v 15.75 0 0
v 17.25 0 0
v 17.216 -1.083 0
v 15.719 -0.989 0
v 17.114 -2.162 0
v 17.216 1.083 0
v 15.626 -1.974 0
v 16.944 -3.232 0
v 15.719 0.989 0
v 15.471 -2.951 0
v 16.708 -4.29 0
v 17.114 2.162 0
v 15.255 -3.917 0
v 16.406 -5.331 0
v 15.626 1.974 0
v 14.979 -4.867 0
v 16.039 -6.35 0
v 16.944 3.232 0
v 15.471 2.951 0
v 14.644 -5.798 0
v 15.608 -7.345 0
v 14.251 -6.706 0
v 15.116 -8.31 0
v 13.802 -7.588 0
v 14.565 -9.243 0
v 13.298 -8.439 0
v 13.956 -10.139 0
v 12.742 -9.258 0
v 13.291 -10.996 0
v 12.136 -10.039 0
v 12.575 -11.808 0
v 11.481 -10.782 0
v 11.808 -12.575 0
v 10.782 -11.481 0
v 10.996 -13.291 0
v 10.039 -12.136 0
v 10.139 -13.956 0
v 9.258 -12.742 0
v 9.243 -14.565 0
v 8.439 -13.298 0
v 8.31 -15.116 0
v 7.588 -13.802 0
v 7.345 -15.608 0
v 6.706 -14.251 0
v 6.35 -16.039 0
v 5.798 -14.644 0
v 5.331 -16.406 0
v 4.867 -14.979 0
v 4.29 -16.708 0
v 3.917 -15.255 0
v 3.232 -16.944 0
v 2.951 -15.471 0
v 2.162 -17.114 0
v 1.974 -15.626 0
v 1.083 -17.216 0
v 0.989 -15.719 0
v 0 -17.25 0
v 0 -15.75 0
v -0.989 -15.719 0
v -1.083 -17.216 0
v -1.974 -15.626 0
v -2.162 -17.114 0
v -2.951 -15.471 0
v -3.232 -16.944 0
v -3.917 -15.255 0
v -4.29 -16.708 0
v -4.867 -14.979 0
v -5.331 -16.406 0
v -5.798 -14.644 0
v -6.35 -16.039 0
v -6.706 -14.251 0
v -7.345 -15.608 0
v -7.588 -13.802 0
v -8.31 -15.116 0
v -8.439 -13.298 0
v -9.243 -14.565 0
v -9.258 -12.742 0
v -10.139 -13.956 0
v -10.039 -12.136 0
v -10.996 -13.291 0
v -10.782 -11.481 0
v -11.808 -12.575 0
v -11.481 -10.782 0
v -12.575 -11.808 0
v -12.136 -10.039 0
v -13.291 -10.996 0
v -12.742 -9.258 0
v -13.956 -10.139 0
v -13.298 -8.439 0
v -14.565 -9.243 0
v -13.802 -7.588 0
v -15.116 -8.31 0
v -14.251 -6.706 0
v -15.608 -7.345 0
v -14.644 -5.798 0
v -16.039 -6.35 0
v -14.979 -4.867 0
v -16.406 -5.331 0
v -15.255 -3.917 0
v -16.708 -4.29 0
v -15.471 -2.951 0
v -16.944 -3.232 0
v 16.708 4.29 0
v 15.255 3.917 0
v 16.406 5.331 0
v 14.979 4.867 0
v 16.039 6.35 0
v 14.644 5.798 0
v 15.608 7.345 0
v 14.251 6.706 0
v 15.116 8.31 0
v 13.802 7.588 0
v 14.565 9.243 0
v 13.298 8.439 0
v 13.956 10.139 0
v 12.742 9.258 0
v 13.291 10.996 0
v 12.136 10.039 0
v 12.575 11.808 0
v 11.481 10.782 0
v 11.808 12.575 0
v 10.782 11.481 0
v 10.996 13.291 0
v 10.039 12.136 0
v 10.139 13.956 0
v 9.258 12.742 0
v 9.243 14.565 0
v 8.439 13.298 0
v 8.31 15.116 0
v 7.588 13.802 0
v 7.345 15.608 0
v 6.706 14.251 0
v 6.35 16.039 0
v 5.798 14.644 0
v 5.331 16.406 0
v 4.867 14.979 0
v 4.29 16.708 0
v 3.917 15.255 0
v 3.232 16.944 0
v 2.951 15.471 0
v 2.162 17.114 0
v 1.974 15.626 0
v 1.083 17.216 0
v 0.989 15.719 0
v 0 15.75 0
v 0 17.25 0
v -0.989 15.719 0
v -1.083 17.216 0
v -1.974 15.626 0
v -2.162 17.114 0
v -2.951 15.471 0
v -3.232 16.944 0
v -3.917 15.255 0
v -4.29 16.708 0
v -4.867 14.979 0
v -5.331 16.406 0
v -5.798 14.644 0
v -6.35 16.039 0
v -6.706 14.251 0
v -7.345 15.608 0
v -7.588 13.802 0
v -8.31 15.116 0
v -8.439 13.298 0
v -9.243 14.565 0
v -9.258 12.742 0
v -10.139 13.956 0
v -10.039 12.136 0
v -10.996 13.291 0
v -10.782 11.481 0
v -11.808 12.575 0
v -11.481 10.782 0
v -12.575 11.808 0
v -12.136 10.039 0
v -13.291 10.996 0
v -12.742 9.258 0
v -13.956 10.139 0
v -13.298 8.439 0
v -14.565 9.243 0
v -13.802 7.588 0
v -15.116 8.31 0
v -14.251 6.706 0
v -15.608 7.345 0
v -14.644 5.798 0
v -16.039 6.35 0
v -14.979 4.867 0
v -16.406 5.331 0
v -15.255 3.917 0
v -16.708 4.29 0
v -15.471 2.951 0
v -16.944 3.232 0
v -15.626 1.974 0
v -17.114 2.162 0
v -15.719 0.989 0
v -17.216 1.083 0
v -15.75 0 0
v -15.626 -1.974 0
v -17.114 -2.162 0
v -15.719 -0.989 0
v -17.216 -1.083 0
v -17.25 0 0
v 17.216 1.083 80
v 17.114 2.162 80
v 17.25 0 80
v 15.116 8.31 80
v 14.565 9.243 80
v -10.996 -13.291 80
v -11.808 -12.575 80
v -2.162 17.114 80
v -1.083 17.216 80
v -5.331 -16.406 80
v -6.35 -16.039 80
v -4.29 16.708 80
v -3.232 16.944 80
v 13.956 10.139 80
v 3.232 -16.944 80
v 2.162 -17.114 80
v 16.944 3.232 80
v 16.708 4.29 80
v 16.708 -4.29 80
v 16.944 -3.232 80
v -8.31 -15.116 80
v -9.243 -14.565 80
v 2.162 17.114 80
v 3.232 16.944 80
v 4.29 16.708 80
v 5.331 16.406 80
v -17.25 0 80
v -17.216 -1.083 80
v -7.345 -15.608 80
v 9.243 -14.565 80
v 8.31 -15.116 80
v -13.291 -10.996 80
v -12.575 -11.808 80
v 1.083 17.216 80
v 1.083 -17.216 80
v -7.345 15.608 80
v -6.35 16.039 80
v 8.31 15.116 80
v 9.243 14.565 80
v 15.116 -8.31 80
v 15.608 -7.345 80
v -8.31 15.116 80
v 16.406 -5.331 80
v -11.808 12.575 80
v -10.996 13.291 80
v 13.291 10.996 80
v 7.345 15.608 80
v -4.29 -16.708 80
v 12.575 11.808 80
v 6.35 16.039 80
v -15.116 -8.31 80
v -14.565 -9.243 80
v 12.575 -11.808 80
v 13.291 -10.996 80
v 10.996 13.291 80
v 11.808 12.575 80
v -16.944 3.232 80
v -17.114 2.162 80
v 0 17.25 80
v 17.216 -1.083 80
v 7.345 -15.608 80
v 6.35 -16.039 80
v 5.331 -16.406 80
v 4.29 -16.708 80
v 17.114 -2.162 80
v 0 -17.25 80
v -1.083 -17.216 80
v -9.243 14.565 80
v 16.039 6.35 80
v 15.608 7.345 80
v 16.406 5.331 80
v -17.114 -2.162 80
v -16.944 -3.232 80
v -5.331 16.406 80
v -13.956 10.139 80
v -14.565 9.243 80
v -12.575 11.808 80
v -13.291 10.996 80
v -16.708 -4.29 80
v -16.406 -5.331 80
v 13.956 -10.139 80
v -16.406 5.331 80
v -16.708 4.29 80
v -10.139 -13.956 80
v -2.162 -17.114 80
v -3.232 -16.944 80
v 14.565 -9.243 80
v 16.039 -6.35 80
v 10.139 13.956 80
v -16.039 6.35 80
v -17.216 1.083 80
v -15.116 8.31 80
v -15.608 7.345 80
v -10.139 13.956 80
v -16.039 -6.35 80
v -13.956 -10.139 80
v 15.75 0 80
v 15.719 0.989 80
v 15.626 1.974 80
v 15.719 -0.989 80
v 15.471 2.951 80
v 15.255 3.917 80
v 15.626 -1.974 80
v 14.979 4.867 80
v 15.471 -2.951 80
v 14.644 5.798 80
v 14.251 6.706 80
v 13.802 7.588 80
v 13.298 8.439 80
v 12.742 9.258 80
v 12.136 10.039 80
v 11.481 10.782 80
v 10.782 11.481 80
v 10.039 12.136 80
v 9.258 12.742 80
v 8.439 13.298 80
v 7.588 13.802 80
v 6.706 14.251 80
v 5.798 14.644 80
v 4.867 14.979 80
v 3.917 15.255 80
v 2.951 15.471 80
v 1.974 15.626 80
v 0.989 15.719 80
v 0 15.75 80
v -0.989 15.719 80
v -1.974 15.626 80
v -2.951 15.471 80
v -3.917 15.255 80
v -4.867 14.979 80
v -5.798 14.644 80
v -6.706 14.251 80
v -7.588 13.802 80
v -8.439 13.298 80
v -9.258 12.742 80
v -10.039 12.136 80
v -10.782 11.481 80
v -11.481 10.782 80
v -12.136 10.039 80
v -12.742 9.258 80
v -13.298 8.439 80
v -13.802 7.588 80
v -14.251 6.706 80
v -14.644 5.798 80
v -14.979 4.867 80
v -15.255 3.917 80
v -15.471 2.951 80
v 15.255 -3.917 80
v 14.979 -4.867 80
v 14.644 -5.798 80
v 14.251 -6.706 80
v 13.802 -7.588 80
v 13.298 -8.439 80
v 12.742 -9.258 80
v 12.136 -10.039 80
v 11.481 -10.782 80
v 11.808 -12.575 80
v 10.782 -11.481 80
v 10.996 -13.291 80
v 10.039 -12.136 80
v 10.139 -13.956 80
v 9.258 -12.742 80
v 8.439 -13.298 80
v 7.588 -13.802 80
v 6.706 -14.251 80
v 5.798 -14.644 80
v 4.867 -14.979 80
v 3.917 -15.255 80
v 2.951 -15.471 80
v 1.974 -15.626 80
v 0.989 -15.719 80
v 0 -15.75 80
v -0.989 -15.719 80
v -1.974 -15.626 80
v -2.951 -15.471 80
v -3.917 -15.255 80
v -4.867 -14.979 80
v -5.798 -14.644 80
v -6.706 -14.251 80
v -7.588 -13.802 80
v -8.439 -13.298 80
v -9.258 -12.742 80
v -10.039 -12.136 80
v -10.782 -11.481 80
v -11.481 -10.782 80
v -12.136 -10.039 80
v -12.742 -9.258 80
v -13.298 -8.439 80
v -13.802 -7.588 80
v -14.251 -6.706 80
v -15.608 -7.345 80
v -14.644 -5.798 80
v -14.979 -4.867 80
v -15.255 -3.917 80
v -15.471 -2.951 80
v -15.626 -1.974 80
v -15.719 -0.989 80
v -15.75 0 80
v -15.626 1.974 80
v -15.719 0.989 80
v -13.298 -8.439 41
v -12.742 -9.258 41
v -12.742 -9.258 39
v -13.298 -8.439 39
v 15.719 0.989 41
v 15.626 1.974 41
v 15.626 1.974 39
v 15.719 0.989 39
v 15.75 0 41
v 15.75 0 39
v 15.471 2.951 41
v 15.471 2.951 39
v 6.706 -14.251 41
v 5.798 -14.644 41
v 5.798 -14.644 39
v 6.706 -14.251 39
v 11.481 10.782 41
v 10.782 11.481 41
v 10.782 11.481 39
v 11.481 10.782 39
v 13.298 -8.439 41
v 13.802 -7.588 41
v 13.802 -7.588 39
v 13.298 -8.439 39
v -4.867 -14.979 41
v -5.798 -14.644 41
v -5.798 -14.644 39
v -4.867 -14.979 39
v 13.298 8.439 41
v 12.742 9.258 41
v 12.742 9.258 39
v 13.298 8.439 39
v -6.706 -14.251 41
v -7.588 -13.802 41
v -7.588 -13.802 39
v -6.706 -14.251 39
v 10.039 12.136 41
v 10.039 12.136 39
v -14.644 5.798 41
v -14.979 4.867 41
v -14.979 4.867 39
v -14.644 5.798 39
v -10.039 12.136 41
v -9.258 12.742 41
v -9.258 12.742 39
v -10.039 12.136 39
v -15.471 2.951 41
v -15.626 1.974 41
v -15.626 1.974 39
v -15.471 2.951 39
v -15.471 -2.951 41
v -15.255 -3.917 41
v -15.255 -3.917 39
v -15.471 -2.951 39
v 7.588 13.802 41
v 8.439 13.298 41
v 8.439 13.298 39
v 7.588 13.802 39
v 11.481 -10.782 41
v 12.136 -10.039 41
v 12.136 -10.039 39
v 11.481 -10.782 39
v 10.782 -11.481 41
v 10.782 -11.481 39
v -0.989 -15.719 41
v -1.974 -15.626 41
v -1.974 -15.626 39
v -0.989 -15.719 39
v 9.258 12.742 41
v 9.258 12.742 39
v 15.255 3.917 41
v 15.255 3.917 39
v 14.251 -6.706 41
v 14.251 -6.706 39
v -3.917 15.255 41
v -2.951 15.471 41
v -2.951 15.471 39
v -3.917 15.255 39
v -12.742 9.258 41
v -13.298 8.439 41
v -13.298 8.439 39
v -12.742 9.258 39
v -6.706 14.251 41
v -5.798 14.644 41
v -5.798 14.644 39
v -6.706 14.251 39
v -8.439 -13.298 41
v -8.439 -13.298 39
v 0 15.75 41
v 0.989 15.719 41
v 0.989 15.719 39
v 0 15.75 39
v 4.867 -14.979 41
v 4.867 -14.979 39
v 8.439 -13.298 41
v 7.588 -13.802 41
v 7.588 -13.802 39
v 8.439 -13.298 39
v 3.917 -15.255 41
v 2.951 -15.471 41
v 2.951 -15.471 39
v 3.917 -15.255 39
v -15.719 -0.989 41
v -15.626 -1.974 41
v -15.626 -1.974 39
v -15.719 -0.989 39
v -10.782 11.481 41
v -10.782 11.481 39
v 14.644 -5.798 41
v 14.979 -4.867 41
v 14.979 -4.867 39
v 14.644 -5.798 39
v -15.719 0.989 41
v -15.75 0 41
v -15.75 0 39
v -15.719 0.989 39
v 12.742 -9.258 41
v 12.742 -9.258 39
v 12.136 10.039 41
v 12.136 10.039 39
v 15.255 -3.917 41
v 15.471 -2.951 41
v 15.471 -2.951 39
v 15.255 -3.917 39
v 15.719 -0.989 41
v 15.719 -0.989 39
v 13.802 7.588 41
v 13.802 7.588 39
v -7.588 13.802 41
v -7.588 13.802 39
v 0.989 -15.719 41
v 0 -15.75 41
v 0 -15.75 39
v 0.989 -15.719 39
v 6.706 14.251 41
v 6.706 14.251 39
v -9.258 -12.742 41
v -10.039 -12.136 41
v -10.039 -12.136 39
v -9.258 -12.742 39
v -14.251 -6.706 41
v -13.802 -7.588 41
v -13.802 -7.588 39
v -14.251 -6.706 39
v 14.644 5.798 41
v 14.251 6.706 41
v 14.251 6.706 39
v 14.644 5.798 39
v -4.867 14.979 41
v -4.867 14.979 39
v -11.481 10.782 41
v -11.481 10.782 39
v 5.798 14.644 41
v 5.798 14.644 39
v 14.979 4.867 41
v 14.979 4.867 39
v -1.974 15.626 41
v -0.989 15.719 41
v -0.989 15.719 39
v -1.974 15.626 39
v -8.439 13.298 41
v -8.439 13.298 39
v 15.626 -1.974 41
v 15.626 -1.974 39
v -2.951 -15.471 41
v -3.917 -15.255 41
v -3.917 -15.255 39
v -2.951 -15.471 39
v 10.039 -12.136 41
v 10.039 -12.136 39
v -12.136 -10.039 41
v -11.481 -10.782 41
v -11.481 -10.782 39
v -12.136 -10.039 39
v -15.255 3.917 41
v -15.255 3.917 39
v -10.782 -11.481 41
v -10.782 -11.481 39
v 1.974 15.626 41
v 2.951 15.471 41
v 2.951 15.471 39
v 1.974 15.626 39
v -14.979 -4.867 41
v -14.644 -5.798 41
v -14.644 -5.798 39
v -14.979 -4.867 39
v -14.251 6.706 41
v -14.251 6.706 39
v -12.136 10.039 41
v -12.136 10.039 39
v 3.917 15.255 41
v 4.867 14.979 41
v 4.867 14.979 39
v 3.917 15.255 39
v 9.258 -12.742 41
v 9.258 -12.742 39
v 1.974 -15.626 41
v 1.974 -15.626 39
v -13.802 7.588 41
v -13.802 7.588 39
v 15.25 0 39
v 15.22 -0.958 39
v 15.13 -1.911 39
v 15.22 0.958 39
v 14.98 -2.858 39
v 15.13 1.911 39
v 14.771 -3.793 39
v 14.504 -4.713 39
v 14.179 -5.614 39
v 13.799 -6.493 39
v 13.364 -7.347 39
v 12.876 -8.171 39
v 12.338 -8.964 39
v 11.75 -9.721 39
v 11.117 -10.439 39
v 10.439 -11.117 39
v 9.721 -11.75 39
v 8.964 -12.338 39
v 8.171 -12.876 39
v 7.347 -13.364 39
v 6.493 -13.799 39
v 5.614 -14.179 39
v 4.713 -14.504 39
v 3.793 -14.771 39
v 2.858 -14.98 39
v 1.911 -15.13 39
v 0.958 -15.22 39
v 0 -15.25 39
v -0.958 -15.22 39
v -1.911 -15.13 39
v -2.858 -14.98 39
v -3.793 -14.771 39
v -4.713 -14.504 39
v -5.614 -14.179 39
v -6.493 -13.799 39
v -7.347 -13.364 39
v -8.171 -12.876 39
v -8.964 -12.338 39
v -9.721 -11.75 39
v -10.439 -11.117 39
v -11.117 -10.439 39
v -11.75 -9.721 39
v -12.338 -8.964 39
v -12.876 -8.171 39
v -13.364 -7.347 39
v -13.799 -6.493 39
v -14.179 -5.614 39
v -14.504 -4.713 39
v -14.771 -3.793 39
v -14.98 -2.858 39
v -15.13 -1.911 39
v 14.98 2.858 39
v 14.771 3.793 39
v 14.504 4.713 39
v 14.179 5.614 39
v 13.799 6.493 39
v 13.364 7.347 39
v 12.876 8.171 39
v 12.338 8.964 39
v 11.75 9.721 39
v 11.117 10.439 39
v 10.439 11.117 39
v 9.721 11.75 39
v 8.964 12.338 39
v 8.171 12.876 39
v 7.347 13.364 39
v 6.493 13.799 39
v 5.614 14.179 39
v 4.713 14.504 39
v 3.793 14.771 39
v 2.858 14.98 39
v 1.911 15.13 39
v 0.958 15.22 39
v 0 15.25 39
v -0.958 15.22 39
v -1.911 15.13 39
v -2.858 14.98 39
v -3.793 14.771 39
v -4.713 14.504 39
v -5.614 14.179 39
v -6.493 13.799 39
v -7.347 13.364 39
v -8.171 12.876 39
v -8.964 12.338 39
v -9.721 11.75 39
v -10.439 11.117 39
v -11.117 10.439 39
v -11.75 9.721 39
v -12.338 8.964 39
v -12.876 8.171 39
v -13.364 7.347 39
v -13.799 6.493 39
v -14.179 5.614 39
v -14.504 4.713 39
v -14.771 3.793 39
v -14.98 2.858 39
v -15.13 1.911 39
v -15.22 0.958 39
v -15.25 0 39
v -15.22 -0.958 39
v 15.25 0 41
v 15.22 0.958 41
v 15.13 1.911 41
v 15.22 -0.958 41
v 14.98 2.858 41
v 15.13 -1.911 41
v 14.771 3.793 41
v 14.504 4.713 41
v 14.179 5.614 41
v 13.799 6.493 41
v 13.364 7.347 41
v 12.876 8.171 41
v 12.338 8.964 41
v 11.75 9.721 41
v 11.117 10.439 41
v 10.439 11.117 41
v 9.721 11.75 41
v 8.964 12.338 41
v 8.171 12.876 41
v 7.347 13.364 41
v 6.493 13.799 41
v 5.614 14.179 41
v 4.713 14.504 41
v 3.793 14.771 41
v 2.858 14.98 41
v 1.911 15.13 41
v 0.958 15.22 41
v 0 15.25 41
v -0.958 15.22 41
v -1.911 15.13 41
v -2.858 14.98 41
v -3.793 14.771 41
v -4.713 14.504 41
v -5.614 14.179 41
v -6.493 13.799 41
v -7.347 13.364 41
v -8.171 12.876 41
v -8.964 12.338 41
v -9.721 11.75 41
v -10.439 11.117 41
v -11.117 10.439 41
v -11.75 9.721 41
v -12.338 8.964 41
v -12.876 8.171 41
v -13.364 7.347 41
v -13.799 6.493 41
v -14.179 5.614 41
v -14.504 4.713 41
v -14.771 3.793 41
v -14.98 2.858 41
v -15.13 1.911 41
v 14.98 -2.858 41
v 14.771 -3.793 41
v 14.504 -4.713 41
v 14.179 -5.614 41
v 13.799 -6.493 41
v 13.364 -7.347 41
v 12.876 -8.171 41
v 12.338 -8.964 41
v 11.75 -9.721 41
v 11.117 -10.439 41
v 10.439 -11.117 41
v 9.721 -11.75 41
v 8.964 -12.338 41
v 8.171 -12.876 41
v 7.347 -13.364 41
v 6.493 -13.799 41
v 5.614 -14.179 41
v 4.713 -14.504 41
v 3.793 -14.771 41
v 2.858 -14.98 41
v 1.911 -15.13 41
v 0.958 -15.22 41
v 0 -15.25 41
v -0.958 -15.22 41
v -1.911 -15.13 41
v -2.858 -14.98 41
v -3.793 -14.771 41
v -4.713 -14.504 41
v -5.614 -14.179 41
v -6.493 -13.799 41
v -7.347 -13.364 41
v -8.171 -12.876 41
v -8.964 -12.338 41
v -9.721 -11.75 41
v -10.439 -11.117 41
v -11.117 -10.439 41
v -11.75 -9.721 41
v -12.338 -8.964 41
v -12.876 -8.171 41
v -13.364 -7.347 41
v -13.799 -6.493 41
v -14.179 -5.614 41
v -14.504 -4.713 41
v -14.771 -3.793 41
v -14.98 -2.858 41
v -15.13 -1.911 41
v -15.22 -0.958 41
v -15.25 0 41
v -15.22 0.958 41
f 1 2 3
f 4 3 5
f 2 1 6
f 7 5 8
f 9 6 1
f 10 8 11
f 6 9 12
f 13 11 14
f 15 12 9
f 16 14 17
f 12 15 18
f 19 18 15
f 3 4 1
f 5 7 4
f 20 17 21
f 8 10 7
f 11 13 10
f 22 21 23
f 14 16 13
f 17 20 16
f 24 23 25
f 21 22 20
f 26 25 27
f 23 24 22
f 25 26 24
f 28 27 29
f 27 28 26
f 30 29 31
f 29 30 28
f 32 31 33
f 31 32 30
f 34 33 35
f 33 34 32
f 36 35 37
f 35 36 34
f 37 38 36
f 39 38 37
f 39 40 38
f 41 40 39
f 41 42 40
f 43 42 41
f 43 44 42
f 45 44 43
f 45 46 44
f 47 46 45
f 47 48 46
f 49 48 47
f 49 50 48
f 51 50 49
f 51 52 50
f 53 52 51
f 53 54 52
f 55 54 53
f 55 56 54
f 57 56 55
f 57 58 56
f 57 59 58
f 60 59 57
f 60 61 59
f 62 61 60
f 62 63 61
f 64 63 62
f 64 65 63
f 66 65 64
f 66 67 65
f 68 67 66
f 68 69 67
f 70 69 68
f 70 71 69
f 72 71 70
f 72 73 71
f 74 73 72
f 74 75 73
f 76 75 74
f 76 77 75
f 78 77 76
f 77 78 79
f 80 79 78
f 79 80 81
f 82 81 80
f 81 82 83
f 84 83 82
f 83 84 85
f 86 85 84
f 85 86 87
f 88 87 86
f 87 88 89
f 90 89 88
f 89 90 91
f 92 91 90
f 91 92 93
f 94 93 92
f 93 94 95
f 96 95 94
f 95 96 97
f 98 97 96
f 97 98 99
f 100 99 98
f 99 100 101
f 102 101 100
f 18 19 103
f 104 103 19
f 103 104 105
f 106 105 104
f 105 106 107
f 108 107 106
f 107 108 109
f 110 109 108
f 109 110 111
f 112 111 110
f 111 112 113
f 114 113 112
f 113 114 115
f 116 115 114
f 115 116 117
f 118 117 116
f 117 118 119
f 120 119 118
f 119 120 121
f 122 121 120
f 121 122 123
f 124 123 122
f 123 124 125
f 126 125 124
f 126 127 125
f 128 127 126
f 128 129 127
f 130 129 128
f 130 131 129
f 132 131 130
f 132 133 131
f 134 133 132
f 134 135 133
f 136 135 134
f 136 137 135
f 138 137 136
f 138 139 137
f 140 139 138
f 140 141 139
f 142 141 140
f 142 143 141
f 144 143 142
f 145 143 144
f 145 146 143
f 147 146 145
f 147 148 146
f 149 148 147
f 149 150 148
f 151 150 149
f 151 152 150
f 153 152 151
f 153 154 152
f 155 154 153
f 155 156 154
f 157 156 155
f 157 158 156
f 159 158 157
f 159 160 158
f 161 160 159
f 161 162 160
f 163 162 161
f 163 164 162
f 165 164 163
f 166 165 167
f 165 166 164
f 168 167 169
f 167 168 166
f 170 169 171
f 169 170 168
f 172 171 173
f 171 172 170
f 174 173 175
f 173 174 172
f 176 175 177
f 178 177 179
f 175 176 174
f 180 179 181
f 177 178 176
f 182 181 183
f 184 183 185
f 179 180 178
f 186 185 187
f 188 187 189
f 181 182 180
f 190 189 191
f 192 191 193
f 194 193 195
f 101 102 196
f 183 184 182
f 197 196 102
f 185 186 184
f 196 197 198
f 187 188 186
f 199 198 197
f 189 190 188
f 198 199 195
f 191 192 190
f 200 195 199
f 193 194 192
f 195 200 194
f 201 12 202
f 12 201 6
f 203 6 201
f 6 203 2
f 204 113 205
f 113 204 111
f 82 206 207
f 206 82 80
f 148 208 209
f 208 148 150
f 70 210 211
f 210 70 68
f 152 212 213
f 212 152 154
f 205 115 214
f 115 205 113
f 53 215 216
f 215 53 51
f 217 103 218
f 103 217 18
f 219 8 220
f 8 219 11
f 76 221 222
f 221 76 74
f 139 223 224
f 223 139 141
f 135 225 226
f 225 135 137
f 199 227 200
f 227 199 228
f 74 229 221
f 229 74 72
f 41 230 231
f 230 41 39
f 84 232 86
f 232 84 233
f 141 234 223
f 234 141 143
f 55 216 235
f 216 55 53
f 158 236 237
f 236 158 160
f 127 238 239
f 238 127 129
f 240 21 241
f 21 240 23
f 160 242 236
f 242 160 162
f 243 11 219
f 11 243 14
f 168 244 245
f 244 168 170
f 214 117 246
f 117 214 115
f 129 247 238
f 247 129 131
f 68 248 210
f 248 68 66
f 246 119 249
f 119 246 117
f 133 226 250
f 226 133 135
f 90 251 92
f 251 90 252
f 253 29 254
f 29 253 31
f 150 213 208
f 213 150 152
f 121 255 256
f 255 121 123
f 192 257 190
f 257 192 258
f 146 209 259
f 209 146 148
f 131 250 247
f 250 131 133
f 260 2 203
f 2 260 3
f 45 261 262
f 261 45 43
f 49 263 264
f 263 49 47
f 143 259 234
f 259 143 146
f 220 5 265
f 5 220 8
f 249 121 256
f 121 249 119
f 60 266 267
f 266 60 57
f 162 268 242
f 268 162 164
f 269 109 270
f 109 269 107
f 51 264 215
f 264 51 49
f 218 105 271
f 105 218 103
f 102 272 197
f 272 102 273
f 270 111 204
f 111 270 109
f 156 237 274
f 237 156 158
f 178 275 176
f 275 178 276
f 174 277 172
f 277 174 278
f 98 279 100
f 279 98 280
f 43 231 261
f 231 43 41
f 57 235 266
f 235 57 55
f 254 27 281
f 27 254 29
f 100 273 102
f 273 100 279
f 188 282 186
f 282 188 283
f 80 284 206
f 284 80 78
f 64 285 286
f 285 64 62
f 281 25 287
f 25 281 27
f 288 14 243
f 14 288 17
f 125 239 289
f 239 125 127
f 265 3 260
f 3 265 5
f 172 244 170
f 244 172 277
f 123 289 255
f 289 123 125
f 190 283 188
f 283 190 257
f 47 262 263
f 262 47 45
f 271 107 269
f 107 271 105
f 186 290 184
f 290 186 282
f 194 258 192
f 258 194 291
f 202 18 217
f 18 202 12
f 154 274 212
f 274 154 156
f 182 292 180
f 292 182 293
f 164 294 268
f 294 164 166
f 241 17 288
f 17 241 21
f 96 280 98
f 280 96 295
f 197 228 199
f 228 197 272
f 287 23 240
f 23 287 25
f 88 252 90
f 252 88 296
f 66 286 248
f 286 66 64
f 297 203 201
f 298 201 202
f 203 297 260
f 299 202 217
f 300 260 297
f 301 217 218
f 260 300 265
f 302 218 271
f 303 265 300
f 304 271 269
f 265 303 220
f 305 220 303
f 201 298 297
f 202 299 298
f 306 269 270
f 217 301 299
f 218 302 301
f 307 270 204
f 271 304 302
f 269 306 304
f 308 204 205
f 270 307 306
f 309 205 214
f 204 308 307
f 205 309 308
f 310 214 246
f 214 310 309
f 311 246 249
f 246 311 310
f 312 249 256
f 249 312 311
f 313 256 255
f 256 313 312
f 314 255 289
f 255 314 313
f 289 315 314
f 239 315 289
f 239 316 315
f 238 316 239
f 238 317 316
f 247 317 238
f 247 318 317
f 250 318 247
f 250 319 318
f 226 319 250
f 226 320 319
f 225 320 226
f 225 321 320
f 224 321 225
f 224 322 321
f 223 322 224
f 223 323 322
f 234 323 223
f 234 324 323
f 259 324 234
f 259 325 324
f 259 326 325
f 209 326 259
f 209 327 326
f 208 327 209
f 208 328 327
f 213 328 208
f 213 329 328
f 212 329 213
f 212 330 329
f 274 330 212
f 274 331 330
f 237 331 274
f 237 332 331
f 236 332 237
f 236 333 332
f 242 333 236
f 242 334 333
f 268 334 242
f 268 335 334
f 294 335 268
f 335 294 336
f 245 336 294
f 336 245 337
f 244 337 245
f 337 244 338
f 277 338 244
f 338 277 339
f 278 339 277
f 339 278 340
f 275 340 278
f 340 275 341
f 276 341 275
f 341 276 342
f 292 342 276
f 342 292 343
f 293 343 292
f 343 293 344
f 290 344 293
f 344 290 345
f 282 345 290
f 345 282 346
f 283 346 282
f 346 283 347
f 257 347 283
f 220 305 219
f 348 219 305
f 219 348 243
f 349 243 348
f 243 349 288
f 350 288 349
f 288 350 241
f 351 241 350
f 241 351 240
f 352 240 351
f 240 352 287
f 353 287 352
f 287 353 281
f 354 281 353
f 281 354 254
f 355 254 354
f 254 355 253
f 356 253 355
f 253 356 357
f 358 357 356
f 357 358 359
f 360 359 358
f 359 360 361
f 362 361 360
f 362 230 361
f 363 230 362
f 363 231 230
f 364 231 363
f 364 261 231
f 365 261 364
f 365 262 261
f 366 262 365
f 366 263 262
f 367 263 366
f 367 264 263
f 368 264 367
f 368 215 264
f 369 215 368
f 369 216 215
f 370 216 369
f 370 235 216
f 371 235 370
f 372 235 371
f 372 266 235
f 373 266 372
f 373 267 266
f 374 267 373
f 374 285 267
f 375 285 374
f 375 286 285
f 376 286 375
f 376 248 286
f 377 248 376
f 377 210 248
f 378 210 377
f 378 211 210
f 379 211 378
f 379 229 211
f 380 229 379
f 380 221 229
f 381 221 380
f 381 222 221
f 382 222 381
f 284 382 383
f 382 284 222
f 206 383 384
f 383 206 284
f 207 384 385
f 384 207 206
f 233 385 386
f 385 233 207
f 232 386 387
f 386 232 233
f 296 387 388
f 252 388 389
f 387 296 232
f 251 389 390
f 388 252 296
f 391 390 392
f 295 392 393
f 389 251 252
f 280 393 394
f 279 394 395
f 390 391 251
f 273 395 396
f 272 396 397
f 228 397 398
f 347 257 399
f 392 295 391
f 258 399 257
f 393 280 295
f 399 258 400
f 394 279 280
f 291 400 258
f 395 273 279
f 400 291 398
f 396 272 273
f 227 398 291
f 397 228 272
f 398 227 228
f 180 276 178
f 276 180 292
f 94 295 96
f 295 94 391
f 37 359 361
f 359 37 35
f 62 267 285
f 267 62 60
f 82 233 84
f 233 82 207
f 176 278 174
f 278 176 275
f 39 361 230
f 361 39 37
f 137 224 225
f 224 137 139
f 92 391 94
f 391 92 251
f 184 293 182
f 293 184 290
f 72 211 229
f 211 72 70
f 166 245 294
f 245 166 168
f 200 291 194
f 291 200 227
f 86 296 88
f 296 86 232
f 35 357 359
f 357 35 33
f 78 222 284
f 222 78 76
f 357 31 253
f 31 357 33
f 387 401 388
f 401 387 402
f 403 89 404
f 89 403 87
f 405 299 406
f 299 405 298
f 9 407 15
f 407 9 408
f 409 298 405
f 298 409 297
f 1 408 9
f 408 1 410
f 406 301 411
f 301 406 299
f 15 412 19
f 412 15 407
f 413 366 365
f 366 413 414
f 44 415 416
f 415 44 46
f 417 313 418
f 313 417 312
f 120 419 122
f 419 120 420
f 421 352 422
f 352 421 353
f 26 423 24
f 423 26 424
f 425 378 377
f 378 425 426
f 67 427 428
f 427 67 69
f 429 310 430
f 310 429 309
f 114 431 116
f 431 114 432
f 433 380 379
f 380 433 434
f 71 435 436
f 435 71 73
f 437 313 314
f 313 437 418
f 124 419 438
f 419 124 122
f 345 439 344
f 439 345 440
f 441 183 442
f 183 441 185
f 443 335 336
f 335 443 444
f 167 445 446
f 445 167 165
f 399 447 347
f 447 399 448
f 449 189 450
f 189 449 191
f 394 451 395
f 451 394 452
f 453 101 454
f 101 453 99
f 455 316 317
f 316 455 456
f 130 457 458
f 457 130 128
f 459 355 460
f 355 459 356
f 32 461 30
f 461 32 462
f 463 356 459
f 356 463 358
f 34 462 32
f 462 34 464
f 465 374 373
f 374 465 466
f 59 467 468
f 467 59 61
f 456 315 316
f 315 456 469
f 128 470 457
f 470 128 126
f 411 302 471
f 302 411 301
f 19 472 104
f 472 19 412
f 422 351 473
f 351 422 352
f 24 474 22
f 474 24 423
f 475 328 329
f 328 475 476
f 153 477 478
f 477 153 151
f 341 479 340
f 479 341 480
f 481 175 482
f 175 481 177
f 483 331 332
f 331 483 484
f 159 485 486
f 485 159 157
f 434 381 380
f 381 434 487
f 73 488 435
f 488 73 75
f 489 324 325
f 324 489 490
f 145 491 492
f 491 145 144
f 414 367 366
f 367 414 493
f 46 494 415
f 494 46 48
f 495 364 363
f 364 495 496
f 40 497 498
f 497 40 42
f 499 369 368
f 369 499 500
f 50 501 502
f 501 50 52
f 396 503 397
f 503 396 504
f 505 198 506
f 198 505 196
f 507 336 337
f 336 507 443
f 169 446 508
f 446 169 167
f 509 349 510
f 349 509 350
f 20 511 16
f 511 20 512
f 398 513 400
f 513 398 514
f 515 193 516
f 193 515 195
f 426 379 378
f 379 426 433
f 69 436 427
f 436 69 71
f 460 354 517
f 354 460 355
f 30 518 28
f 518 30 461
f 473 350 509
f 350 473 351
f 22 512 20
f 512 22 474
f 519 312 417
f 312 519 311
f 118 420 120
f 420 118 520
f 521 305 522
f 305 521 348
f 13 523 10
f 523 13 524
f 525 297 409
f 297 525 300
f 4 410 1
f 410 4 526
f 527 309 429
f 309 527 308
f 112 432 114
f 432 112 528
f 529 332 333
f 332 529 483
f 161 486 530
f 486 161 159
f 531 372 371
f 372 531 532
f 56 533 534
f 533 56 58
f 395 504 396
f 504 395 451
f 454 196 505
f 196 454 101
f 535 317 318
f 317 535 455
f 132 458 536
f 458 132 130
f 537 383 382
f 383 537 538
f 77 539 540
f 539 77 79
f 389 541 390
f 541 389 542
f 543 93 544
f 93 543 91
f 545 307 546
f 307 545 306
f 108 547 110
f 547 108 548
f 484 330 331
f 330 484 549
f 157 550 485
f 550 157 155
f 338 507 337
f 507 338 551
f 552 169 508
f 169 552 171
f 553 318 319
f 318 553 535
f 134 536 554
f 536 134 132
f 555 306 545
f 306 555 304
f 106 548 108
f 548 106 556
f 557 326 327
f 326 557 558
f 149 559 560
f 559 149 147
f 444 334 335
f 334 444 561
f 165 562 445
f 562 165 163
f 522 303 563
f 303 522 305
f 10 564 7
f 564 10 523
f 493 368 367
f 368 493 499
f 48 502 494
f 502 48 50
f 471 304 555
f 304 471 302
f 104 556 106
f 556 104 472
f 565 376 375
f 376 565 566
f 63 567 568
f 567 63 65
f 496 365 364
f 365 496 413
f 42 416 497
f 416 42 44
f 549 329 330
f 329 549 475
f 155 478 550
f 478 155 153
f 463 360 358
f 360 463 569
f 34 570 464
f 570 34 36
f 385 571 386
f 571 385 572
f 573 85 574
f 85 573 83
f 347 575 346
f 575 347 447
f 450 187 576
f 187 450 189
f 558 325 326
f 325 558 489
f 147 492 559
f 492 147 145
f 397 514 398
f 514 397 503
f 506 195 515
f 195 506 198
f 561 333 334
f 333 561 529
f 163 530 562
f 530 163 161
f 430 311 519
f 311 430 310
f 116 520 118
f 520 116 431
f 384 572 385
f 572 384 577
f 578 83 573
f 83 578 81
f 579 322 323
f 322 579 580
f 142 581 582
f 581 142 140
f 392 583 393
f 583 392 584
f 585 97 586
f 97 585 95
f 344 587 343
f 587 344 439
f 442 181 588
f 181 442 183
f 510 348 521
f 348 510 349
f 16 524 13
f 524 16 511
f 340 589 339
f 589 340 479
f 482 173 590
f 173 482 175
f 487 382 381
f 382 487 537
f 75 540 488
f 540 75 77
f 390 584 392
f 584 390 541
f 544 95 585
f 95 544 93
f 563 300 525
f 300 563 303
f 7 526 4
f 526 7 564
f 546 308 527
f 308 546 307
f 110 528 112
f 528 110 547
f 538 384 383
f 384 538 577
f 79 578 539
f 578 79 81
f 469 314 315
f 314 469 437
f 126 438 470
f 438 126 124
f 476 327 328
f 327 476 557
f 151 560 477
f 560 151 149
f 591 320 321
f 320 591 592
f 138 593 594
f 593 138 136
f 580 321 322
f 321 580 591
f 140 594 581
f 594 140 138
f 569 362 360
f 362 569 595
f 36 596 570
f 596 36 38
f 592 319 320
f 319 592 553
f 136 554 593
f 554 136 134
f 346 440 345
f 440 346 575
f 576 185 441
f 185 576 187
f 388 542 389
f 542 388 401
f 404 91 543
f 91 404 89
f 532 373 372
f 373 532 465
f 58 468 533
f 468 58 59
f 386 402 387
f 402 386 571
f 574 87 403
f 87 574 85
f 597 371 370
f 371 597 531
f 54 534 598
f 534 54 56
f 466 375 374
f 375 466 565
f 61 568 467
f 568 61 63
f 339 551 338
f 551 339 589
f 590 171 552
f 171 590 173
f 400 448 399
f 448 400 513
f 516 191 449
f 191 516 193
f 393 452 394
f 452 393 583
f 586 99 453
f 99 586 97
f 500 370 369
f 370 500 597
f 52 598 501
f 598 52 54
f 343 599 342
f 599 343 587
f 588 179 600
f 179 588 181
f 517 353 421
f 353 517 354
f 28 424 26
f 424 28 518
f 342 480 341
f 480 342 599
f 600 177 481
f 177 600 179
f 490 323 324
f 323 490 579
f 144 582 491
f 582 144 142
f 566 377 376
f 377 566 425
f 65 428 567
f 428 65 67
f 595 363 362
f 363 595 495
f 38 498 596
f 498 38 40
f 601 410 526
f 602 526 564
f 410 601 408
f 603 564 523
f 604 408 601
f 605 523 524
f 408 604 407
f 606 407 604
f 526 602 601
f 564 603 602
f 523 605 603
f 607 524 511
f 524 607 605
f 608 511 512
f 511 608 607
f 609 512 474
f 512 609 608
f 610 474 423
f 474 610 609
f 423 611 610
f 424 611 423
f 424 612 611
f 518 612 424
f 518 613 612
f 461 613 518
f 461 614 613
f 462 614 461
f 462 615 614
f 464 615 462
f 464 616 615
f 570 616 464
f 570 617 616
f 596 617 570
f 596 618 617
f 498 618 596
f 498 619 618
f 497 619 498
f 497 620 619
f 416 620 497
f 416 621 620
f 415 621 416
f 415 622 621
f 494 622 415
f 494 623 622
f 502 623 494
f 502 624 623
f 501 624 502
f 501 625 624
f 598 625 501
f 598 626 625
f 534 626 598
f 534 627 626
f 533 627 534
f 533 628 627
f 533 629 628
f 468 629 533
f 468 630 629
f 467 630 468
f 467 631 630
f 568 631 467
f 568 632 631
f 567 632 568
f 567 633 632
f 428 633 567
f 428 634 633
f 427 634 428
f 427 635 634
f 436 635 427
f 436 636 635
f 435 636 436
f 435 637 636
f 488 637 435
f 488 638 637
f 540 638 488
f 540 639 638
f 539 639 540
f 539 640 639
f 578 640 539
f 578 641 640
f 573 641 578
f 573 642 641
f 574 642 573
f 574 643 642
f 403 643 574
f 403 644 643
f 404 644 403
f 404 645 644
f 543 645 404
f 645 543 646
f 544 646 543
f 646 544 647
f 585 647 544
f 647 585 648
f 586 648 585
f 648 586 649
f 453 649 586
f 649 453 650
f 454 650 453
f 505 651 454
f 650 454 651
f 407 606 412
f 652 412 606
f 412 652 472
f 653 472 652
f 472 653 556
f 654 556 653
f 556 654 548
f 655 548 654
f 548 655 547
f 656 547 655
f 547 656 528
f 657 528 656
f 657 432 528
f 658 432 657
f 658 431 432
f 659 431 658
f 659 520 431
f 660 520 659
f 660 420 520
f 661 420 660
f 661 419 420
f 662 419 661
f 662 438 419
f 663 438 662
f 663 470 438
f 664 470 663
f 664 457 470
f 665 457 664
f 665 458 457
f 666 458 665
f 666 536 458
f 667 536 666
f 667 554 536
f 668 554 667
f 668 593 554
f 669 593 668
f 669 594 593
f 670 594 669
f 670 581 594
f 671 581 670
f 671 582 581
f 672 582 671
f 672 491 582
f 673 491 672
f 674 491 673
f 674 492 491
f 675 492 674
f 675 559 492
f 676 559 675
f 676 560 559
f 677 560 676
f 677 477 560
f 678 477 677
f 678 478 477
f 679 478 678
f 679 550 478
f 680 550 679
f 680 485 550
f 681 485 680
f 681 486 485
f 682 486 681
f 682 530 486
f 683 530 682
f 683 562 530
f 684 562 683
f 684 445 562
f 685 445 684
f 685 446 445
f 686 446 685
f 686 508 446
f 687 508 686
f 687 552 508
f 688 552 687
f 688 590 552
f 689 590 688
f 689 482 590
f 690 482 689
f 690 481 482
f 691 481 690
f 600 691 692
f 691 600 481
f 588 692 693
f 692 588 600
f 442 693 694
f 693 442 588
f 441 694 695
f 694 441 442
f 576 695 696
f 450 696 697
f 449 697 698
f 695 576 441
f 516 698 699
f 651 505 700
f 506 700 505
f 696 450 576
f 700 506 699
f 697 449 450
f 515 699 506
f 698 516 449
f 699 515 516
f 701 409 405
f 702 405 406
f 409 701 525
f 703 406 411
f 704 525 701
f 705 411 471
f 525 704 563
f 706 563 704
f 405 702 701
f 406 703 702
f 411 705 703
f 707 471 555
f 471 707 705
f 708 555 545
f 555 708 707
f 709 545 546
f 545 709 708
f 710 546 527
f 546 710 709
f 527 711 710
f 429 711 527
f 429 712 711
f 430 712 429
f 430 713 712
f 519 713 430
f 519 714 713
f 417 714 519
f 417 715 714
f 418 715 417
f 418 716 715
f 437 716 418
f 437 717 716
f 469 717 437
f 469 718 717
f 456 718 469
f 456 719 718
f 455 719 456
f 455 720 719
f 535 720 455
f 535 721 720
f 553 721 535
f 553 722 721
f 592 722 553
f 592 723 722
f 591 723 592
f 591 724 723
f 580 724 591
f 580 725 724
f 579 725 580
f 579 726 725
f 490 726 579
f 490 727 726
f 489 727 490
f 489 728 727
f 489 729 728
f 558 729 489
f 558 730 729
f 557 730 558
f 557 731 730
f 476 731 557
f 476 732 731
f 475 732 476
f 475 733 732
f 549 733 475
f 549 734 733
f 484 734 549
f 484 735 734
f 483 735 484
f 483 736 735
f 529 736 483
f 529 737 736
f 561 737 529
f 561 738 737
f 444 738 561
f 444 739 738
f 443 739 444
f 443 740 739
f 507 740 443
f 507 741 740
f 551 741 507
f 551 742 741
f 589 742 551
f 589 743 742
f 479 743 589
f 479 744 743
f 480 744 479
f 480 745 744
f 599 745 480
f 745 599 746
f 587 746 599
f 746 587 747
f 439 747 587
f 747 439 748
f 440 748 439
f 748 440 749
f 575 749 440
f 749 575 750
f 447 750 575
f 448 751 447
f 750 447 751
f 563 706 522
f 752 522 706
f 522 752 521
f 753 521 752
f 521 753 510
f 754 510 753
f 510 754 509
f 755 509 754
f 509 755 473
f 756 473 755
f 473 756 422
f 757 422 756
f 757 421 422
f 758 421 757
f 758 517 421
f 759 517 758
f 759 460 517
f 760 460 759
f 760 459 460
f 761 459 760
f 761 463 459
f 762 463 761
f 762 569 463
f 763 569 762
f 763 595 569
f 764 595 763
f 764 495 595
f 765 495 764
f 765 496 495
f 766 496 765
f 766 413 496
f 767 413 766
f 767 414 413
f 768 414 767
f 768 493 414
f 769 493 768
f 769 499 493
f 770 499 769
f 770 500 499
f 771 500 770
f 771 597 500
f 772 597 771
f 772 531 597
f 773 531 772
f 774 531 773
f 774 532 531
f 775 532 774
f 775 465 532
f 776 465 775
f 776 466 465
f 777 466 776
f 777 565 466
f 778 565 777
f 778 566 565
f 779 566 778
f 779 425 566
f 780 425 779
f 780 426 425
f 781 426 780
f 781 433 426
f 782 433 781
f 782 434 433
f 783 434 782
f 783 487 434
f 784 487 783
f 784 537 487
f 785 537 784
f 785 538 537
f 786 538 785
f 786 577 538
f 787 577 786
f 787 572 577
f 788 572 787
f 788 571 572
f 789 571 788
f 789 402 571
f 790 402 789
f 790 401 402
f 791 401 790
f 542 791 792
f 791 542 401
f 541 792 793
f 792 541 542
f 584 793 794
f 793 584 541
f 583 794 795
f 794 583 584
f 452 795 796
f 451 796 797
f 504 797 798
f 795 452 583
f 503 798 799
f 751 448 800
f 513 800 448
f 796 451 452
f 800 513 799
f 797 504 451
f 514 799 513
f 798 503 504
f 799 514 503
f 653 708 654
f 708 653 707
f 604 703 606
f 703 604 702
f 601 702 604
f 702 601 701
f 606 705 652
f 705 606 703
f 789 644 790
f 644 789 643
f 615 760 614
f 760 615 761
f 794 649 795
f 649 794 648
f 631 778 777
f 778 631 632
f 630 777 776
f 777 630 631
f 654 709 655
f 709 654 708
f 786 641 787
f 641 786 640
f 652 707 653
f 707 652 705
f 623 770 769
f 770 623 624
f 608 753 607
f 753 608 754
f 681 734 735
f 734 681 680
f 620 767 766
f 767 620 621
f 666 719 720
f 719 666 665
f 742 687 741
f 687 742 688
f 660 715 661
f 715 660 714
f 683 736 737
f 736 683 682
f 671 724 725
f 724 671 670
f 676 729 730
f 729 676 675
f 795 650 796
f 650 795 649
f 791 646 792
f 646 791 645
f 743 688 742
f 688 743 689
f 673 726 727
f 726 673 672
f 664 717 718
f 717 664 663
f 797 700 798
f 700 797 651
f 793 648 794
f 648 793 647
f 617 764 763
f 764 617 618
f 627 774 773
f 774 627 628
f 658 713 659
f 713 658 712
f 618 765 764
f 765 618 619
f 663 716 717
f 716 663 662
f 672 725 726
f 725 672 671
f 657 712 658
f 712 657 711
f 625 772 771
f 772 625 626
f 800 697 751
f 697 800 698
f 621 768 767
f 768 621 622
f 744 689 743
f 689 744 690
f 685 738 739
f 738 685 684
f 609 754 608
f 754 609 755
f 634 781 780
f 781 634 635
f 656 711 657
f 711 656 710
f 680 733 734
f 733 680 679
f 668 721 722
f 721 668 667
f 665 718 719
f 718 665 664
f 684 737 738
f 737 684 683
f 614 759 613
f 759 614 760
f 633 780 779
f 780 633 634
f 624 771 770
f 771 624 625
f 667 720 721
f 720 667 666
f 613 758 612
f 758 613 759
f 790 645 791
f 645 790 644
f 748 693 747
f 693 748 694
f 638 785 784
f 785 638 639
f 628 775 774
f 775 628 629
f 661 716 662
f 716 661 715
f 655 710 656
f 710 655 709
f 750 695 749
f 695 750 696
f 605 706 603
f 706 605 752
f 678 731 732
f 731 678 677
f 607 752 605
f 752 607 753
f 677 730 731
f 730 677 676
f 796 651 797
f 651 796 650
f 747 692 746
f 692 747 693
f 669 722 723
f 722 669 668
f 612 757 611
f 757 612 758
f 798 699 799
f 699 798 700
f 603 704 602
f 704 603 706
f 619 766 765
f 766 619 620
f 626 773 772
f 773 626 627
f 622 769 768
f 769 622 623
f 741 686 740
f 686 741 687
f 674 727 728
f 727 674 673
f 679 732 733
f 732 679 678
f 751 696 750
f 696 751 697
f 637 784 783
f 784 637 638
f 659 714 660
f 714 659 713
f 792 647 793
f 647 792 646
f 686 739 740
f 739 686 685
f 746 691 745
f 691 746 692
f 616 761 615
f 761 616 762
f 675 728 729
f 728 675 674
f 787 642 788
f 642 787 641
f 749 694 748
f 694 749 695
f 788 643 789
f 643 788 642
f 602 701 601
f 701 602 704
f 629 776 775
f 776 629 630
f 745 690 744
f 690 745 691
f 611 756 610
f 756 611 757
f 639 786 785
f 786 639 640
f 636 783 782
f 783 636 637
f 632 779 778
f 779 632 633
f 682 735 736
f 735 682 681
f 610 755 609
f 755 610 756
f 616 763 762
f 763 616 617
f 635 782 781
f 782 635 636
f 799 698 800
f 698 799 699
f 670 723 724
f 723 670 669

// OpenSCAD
$fn = 100;
difference() {
	cylinder( h=80,r=34.5/2);

	translate([0, 0, -5])
	cylinder( h=90,r=31.5/2);
}


translate([0, 0, 39]) {
	difference() {
		cylinder( h=2,r=34.5/2);

		translate([0, 0, -5])
		cylinder( h=12,r=30.5/2);
	}
}
